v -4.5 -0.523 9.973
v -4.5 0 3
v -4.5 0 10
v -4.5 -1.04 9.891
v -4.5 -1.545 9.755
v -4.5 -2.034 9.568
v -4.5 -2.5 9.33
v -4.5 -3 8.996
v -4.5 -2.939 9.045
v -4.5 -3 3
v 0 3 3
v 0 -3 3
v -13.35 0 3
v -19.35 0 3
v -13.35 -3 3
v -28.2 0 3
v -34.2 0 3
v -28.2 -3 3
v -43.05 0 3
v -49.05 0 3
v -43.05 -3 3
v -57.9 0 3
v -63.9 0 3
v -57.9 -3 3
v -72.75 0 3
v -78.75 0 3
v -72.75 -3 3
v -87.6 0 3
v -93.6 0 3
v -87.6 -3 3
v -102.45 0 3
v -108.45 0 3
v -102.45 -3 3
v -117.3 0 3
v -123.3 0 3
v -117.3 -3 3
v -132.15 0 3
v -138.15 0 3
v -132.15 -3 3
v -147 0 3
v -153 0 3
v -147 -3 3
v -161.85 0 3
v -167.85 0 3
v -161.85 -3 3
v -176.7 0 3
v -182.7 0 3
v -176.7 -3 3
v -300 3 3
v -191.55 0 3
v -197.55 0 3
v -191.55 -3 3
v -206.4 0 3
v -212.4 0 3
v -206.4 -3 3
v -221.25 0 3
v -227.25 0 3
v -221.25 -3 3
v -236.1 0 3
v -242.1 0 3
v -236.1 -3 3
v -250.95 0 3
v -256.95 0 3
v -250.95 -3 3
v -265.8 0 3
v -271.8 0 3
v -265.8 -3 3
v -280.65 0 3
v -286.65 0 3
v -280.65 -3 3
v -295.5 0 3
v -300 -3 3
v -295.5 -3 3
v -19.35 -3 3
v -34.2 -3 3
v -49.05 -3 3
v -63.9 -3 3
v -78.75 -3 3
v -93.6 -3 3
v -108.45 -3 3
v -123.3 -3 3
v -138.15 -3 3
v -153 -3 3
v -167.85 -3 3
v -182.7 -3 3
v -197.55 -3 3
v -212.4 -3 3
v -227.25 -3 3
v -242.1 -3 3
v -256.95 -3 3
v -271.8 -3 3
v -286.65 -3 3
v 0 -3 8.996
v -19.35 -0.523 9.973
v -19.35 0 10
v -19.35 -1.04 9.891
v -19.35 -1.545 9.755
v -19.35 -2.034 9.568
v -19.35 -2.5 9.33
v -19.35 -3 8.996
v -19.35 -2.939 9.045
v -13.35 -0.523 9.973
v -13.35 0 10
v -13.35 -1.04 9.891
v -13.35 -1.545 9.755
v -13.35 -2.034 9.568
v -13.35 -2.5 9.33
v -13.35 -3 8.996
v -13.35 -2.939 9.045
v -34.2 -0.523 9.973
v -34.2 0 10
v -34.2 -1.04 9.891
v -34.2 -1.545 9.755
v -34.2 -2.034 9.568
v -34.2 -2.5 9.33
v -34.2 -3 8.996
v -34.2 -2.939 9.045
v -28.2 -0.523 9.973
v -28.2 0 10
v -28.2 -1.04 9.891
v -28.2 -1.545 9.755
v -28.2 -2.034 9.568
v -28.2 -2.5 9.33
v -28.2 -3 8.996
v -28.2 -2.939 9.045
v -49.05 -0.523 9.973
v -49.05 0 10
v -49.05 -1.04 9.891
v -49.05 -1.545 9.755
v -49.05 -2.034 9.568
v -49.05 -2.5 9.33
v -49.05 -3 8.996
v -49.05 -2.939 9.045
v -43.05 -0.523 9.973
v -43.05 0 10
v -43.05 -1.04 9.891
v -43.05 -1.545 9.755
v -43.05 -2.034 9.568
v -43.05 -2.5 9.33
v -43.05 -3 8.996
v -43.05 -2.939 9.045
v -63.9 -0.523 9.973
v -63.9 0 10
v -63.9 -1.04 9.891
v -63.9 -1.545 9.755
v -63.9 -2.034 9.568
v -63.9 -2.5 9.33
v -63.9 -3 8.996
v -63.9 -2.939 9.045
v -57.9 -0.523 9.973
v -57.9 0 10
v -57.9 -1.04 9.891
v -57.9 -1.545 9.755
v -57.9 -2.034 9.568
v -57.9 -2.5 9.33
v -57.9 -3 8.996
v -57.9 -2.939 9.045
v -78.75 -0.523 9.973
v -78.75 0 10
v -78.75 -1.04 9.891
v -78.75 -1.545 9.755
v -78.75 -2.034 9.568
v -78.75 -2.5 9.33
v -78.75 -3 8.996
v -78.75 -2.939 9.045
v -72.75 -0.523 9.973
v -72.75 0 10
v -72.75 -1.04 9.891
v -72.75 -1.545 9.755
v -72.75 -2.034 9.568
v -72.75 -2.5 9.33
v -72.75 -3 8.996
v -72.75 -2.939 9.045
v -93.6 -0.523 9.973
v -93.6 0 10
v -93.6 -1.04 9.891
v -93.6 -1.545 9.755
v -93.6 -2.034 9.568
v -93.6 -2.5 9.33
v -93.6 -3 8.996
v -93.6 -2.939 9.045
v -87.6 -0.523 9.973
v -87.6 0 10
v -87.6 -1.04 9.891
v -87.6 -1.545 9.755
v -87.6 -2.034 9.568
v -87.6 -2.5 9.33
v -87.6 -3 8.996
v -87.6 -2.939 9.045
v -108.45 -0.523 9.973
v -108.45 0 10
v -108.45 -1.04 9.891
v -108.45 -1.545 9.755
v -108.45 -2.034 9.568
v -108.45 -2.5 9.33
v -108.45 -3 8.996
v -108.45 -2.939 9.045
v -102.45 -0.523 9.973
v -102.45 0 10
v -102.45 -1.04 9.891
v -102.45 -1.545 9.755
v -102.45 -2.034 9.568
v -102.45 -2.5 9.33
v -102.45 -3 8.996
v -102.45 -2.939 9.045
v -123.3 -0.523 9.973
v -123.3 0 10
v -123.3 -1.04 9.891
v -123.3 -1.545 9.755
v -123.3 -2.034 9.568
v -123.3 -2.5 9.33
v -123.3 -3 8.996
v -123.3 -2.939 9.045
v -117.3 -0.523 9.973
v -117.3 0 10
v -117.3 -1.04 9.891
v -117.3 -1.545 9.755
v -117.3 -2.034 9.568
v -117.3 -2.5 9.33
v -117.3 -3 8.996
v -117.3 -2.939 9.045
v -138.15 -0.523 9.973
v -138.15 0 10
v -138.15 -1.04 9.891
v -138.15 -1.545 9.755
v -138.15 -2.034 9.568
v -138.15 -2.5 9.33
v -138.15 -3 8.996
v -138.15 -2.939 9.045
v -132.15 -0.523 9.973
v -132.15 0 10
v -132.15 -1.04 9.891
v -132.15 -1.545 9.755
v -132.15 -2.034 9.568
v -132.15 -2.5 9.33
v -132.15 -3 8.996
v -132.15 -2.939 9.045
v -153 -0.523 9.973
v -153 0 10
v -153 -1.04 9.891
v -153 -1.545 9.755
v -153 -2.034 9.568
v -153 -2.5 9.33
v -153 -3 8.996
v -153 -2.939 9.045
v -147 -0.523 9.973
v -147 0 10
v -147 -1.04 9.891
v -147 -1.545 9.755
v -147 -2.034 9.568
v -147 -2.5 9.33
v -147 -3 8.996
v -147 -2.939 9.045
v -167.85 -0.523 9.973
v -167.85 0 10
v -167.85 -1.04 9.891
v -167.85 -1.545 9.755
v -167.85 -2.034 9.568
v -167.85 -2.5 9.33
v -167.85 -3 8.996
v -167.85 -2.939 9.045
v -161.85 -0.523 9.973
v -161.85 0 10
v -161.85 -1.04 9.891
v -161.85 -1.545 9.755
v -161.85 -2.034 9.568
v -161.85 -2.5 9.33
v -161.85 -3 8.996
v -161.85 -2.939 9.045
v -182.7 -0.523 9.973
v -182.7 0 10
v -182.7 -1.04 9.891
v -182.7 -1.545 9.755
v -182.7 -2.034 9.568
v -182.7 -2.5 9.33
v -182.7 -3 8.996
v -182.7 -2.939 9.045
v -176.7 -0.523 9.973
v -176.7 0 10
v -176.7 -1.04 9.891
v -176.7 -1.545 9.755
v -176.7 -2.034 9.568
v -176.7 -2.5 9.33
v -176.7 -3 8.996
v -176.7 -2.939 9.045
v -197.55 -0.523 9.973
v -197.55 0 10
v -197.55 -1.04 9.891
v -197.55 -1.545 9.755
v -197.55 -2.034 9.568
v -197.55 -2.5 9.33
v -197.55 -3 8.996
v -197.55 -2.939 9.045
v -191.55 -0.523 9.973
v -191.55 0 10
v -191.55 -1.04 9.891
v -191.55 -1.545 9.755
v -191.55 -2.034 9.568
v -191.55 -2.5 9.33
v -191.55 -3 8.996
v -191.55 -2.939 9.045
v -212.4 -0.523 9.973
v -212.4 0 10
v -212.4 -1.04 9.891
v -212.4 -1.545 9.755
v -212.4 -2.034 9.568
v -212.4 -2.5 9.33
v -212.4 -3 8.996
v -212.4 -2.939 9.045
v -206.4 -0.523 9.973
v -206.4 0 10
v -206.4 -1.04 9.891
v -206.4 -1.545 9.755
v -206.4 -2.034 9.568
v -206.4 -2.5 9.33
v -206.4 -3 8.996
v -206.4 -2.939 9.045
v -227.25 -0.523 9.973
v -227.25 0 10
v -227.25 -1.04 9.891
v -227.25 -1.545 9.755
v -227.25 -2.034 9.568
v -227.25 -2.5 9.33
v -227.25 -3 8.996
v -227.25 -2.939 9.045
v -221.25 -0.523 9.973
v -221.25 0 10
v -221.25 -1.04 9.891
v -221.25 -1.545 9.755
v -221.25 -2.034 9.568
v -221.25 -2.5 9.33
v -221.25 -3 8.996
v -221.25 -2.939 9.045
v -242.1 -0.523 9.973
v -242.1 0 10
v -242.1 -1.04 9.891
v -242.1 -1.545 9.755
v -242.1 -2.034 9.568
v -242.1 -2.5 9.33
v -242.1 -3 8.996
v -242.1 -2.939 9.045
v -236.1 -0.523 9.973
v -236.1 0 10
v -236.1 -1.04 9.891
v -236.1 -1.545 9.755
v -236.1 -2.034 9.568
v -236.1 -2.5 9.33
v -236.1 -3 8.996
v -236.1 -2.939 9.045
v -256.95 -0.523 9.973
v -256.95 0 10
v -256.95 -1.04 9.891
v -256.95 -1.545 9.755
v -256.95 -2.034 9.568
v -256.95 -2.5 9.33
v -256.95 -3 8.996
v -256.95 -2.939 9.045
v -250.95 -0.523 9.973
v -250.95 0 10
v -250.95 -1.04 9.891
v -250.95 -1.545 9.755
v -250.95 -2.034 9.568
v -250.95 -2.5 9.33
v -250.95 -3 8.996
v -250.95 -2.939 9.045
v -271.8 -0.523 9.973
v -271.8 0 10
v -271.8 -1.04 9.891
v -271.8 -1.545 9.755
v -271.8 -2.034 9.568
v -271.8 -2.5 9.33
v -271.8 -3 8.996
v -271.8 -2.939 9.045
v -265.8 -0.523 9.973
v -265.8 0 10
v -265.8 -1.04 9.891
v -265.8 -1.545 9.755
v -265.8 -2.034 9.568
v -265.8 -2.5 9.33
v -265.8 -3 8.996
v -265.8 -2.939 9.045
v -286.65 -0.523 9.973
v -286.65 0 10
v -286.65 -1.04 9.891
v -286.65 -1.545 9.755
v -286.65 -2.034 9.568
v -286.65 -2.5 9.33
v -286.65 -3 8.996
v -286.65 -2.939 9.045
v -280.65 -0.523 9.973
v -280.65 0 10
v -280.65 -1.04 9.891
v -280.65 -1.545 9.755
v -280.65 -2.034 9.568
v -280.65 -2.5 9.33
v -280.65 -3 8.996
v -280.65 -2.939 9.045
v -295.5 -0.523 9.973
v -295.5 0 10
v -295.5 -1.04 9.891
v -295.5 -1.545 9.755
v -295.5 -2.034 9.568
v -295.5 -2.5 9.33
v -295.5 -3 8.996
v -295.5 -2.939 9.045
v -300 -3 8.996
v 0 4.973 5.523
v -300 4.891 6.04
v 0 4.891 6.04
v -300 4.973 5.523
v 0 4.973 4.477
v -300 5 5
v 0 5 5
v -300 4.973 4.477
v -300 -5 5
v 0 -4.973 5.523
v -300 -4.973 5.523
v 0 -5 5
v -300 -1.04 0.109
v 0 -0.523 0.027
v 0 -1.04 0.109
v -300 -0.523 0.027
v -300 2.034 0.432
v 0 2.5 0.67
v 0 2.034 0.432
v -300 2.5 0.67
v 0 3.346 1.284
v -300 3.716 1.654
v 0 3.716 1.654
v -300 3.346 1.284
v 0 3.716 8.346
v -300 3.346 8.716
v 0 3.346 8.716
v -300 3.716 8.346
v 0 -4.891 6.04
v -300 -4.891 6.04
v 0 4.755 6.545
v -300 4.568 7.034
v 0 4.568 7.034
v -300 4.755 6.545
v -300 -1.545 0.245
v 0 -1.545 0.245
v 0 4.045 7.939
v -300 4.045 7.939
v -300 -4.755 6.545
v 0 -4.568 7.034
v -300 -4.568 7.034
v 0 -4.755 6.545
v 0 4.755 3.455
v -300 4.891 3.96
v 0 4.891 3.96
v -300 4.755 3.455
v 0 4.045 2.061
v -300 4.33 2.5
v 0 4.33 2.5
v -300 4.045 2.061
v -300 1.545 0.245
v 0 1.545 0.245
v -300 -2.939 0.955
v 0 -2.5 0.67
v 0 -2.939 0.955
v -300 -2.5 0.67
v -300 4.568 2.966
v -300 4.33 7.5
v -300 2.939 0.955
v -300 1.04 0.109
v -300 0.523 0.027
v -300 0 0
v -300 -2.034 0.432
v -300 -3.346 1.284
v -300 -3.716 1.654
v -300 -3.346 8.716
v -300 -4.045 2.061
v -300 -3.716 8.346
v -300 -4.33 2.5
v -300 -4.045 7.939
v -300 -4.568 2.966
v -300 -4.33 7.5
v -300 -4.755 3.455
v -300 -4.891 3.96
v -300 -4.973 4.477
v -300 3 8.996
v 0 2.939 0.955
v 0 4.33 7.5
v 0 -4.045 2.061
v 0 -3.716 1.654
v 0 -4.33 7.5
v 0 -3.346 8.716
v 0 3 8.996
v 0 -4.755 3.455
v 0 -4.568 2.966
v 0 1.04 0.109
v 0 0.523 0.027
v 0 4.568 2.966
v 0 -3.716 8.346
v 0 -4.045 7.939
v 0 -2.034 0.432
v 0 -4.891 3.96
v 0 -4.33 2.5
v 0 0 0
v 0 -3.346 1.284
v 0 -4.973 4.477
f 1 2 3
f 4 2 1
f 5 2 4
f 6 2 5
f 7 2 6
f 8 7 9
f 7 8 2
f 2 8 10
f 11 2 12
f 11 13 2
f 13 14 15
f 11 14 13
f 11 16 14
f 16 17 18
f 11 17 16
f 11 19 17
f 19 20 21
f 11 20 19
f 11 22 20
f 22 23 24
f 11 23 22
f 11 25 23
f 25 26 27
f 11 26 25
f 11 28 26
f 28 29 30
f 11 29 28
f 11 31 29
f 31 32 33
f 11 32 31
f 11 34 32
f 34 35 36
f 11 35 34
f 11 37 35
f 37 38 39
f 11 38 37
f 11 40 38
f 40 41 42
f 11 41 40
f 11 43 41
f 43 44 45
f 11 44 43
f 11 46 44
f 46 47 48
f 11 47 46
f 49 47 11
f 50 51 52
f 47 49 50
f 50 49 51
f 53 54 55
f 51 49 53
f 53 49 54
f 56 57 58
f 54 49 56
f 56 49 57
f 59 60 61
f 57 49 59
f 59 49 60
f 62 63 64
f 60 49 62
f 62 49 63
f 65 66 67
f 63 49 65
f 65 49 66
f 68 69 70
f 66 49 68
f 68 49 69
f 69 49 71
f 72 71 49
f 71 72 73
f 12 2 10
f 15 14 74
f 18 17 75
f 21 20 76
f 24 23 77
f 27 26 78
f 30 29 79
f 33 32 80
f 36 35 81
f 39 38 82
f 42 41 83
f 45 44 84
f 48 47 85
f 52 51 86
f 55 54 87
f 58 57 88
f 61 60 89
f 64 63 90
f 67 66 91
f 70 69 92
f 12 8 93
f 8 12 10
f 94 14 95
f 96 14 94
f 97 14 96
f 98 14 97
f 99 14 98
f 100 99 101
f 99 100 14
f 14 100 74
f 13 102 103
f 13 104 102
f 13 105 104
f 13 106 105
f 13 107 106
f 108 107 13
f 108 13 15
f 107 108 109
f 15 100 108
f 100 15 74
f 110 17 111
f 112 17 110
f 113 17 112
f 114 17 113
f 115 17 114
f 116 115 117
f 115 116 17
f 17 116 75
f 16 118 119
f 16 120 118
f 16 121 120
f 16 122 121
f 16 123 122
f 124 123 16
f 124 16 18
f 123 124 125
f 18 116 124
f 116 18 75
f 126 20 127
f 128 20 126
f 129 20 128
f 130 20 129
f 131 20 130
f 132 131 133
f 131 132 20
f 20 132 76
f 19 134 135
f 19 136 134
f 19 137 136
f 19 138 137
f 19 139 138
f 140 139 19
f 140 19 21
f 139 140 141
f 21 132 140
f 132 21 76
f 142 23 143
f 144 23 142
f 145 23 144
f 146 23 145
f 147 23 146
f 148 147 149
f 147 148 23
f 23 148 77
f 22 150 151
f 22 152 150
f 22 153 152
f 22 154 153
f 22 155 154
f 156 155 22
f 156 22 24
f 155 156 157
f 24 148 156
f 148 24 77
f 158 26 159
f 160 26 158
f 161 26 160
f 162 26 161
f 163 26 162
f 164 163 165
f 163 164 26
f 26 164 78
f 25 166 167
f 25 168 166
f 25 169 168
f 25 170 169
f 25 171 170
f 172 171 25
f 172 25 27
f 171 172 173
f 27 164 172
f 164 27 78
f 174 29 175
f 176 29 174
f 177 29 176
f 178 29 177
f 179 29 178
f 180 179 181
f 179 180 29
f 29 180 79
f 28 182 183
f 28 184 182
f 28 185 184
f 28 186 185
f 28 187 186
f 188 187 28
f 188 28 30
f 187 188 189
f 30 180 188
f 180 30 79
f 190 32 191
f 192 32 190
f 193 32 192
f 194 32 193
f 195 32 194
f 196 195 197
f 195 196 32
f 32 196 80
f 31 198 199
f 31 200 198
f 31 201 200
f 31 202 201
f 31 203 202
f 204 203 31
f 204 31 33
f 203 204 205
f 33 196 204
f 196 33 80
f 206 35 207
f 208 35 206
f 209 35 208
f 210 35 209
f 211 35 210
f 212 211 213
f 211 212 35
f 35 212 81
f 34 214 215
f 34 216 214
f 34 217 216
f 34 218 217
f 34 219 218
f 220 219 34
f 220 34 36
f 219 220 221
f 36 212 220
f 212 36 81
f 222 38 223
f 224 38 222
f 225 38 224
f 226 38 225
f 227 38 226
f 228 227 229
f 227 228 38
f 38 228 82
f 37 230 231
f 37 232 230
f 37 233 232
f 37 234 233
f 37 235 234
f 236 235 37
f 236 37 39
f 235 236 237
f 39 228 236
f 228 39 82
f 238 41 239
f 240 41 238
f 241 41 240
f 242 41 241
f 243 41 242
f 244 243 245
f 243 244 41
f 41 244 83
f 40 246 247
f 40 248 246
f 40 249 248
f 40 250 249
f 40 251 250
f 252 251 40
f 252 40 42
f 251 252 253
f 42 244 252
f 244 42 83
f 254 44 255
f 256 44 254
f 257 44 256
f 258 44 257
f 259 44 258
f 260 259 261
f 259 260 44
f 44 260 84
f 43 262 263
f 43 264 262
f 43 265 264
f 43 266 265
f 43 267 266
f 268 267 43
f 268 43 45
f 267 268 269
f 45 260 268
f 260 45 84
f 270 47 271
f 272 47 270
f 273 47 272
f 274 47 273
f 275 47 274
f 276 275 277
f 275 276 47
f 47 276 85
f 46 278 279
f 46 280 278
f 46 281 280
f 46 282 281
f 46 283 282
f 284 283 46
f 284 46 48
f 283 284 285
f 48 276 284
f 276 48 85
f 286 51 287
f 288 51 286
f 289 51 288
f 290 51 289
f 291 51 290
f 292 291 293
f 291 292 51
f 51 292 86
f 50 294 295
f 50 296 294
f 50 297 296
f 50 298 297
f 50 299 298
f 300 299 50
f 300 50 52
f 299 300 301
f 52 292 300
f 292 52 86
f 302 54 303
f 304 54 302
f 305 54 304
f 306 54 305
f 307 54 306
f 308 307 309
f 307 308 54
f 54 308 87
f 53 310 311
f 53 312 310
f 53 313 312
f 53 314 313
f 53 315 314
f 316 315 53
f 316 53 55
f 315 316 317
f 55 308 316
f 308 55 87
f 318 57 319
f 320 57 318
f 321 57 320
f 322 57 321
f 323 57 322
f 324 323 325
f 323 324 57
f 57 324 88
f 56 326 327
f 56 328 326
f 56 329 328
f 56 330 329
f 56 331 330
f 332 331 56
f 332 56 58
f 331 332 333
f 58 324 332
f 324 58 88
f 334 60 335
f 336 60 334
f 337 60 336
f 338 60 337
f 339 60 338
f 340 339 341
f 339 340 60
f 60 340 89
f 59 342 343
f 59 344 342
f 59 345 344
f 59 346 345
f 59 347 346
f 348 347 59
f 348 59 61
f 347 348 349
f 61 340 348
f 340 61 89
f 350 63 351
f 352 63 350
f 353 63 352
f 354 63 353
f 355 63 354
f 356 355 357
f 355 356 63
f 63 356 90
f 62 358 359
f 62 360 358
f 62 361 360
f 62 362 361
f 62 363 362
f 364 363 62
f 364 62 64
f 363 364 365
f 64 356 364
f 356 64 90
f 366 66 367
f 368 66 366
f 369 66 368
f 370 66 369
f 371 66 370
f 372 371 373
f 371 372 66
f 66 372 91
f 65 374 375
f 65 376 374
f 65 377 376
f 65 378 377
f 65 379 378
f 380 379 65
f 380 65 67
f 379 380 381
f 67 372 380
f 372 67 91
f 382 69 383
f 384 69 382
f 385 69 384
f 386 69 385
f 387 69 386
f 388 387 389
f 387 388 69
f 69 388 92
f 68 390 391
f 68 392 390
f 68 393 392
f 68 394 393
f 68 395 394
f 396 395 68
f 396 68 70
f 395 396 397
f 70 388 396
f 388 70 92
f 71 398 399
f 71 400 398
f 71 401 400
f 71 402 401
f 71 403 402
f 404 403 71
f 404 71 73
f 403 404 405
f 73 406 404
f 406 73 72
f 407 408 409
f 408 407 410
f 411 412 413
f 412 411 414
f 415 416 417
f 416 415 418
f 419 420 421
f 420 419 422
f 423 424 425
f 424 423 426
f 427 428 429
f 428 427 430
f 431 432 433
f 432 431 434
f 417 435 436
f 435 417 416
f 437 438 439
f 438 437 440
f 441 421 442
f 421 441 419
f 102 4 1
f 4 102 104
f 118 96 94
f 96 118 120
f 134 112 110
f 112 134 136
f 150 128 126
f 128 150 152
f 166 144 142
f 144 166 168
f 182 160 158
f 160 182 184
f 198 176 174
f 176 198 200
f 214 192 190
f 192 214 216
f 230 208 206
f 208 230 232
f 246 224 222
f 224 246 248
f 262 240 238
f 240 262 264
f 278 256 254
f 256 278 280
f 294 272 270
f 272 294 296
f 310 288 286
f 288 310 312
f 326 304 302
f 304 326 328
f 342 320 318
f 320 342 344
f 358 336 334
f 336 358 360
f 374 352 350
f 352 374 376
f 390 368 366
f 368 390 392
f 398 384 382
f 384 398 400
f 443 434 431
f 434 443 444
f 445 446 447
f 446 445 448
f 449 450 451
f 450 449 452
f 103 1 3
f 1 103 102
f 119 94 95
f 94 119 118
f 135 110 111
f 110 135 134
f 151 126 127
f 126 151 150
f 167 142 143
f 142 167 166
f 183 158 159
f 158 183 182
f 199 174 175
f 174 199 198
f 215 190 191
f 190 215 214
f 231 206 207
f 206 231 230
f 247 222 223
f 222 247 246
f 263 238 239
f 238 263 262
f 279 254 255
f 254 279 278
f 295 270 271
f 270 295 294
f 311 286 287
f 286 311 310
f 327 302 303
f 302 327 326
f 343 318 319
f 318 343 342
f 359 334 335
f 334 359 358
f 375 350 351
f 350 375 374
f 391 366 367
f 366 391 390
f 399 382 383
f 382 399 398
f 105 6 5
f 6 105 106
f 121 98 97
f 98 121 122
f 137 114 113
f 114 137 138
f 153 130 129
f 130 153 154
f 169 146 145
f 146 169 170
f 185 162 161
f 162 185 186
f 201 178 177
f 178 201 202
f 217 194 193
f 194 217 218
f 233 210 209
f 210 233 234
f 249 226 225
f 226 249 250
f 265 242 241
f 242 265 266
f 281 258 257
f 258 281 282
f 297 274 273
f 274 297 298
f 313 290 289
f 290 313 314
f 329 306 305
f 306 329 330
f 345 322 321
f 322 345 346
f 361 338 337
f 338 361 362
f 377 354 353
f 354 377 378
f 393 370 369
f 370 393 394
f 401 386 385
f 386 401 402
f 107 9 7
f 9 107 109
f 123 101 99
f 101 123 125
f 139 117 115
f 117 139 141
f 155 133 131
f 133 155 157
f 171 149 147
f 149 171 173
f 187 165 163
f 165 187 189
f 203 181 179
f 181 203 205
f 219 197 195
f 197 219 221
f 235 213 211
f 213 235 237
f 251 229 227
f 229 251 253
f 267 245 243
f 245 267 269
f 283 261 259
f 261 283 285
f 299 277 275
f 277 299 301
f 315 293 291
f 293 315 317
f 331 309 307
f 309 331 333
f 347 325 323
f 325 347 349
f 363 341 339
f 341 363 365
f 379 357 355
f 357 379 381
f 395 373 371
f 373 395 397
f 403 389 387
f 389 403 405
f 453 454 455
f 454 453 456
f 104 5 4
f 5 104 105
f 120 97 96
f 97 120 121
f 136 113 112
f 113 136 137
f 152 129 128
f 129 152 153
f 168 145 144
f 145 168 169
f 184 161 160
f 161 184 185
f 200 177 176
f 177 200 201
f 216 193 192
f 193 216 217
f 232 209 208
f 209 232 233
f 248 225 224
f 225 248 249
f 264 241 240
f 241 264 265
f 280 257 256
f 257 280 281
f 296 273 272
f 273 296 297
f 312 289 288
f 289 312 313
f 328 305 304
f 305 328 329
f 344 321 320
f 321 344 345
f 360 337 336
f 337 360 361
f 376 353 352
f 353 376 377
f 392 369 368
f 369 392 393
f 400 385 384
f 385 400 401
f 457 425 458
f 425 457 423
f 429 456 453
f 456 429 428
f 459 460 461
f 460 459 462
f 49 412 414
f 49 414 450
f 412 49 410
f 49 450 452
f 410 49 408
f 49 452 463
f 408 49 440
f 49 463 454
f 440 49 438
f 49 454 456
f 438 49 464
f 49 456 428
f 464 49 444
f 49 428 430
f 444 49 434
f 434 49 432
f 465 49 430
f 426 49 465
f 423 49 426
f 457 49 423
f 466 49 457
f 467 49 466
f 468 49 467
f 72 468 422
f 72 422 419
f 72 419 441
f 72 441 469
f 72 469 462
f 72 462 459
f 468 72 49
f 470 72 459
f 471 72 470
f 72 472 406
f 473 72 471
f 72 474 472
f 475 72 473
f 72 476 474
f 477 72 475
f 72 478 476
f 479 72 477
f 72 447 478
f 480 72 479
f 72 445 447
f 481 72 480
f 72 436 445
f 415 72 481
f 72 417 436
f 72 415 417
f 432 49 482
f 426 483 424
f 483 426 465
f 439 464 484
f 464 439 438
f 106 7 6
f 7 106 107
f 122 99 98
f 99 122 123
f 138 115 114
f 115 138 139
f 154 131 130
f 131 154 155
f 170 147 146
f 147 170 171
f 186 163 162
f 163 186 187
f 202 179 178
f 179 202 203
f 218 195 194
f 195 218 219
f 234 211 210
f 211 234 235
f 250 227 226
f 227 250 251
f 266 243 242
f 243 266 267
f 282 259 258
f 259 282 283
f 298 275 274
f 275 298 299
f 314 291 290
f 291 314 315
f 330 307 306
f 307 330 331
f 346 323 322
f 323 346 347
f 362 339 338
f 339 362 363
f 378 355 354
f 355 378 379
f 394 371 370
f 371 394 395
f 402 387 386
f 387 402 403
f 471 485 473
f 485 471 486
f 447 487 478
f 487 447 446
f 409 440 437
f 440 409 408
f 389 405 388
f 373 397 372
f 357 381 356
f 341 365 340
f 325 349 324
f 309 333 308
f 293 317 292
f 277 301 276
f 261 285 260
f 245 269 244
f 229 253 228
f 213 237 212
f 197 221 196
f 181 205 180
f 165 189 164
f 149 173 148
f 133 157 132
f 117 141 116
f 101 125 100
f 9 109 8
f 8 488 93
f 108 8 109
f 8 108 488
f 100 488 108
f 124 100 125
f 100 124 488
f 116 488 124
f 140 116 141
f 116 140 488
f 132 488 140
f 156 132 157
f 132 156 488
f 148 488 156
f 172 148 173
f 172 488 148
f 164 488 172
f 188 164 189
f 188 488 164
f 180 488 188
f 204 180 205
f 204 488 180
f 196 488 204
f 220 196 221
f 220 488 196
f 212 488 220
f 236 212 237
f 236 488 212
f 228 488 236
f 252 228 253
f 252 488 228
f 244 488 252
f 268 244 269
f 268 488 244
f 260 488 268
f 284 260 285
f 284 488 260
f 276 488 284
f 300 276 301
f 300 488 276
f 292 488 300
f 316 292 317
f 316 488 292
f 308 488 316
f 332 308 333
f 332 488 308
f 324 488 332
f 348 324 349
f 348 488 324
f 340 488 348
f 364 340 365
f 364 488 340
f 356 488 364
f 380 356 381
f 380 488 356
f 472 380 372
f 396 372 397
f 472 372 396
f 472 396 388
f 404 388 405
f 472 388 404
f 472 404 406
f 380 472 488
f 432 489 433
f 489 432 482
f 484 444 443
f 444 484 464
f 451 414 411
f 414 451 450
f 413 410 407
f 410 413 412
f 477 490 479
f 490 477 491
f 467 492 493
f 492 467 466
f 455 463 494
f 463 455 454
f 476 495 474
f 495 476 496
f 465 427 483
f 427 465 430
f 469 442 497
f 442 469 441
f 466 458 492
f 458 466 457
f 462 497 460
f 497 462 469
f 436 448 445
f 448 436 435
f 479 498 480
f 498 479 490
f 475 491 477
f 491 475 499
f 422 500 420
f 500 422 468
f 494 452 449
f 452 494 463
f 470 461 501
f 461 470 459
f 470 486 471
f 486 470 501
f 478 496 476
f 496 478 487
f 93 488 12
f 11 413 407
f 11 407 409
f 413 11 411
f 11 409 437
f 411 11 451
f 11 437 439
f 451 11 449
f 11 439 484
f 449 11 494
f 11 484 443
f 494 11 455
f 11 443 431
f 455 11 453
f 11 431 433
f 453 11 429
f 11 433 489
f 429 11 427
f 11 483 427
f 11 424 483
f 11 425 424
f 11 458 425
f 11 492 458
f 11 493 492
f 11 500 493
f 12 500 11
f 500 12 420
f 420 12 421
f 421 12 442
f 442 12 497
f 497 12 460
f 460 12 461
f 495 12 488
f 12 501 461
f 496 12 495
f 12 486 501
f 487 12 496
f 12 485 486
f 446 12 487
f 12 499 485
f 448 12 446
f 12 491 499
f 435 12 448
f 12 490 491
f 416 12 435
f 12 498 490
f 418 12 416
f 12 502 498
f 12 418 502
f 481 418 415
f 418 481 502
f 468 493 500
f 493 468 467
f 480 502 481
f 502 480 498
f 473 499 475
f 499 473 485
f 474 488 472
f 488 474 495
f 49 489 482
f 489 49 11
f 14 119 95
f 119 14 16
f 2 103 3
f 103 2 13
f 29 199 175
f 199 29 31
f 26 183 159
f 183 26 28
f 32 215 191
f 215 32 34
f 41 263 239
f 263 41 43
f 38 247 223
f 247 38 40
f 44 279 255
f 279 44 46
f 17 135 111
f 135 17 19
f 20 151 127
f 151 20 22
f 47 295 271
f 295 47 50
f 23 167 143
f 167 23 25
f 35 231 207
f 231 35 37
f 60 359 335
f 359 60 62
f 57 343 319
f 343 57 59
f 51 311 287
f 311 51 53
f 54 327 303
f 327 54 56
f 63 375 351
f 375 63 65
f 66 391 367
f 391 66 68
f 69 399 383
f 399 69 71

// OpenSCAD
perch_diam=10; // mm
perch_len=300; // mm
$fn=60;
overcut=1;
bar_width=3; // mm
bar_spacing=297/20; // mm

num_bars=floor(perch_len / bar_spacing + 1);
first_bar_offset=(perch_len - bar_spacing * (num_bars - 1)) / 2;

translate([0,0,perch_diam/2])
rotate([0,-90,0])
difference() {
    cylinder(d=perch_diam, h=perch_len);
    translate([-perch_diam/5, 0, -overcut])
        cube([perch_diam, bar_width, perch_len + 2*overcut]);
    translate([-perch_diam/5, -bar_width/2, 2.5])
        rotate([0, 90, 0])
        cylinder(d=bar_width, h=perch_diam);
    //translate([-perch_diam/5, -bar_width/2, 2.5 - bar_width/2])
    //    cube([perch_diam, bar_width, bar_width]);
    //translate([-perch_diam/5, -bar_width/2, 17.5])
    //    rotate([0, 90, 0])
    //    cylinder(d=bar_width, h=perch_diam);
    //translate([-perch_diam/5, -bar_width/2, 17.5 - bar_width/2])
    //    cube([perch_diam, bar_width, bar_width]);
    for (i = [0 : num_bars]) {
        translate([-perch_diam/5, -bar_width,
                bar_spacing * i + first_bar_offset - bar_width])
            cube([
                perch_diam, 
                bar_width + overcut, 
                bar_width*2
            ]);
    }
}
